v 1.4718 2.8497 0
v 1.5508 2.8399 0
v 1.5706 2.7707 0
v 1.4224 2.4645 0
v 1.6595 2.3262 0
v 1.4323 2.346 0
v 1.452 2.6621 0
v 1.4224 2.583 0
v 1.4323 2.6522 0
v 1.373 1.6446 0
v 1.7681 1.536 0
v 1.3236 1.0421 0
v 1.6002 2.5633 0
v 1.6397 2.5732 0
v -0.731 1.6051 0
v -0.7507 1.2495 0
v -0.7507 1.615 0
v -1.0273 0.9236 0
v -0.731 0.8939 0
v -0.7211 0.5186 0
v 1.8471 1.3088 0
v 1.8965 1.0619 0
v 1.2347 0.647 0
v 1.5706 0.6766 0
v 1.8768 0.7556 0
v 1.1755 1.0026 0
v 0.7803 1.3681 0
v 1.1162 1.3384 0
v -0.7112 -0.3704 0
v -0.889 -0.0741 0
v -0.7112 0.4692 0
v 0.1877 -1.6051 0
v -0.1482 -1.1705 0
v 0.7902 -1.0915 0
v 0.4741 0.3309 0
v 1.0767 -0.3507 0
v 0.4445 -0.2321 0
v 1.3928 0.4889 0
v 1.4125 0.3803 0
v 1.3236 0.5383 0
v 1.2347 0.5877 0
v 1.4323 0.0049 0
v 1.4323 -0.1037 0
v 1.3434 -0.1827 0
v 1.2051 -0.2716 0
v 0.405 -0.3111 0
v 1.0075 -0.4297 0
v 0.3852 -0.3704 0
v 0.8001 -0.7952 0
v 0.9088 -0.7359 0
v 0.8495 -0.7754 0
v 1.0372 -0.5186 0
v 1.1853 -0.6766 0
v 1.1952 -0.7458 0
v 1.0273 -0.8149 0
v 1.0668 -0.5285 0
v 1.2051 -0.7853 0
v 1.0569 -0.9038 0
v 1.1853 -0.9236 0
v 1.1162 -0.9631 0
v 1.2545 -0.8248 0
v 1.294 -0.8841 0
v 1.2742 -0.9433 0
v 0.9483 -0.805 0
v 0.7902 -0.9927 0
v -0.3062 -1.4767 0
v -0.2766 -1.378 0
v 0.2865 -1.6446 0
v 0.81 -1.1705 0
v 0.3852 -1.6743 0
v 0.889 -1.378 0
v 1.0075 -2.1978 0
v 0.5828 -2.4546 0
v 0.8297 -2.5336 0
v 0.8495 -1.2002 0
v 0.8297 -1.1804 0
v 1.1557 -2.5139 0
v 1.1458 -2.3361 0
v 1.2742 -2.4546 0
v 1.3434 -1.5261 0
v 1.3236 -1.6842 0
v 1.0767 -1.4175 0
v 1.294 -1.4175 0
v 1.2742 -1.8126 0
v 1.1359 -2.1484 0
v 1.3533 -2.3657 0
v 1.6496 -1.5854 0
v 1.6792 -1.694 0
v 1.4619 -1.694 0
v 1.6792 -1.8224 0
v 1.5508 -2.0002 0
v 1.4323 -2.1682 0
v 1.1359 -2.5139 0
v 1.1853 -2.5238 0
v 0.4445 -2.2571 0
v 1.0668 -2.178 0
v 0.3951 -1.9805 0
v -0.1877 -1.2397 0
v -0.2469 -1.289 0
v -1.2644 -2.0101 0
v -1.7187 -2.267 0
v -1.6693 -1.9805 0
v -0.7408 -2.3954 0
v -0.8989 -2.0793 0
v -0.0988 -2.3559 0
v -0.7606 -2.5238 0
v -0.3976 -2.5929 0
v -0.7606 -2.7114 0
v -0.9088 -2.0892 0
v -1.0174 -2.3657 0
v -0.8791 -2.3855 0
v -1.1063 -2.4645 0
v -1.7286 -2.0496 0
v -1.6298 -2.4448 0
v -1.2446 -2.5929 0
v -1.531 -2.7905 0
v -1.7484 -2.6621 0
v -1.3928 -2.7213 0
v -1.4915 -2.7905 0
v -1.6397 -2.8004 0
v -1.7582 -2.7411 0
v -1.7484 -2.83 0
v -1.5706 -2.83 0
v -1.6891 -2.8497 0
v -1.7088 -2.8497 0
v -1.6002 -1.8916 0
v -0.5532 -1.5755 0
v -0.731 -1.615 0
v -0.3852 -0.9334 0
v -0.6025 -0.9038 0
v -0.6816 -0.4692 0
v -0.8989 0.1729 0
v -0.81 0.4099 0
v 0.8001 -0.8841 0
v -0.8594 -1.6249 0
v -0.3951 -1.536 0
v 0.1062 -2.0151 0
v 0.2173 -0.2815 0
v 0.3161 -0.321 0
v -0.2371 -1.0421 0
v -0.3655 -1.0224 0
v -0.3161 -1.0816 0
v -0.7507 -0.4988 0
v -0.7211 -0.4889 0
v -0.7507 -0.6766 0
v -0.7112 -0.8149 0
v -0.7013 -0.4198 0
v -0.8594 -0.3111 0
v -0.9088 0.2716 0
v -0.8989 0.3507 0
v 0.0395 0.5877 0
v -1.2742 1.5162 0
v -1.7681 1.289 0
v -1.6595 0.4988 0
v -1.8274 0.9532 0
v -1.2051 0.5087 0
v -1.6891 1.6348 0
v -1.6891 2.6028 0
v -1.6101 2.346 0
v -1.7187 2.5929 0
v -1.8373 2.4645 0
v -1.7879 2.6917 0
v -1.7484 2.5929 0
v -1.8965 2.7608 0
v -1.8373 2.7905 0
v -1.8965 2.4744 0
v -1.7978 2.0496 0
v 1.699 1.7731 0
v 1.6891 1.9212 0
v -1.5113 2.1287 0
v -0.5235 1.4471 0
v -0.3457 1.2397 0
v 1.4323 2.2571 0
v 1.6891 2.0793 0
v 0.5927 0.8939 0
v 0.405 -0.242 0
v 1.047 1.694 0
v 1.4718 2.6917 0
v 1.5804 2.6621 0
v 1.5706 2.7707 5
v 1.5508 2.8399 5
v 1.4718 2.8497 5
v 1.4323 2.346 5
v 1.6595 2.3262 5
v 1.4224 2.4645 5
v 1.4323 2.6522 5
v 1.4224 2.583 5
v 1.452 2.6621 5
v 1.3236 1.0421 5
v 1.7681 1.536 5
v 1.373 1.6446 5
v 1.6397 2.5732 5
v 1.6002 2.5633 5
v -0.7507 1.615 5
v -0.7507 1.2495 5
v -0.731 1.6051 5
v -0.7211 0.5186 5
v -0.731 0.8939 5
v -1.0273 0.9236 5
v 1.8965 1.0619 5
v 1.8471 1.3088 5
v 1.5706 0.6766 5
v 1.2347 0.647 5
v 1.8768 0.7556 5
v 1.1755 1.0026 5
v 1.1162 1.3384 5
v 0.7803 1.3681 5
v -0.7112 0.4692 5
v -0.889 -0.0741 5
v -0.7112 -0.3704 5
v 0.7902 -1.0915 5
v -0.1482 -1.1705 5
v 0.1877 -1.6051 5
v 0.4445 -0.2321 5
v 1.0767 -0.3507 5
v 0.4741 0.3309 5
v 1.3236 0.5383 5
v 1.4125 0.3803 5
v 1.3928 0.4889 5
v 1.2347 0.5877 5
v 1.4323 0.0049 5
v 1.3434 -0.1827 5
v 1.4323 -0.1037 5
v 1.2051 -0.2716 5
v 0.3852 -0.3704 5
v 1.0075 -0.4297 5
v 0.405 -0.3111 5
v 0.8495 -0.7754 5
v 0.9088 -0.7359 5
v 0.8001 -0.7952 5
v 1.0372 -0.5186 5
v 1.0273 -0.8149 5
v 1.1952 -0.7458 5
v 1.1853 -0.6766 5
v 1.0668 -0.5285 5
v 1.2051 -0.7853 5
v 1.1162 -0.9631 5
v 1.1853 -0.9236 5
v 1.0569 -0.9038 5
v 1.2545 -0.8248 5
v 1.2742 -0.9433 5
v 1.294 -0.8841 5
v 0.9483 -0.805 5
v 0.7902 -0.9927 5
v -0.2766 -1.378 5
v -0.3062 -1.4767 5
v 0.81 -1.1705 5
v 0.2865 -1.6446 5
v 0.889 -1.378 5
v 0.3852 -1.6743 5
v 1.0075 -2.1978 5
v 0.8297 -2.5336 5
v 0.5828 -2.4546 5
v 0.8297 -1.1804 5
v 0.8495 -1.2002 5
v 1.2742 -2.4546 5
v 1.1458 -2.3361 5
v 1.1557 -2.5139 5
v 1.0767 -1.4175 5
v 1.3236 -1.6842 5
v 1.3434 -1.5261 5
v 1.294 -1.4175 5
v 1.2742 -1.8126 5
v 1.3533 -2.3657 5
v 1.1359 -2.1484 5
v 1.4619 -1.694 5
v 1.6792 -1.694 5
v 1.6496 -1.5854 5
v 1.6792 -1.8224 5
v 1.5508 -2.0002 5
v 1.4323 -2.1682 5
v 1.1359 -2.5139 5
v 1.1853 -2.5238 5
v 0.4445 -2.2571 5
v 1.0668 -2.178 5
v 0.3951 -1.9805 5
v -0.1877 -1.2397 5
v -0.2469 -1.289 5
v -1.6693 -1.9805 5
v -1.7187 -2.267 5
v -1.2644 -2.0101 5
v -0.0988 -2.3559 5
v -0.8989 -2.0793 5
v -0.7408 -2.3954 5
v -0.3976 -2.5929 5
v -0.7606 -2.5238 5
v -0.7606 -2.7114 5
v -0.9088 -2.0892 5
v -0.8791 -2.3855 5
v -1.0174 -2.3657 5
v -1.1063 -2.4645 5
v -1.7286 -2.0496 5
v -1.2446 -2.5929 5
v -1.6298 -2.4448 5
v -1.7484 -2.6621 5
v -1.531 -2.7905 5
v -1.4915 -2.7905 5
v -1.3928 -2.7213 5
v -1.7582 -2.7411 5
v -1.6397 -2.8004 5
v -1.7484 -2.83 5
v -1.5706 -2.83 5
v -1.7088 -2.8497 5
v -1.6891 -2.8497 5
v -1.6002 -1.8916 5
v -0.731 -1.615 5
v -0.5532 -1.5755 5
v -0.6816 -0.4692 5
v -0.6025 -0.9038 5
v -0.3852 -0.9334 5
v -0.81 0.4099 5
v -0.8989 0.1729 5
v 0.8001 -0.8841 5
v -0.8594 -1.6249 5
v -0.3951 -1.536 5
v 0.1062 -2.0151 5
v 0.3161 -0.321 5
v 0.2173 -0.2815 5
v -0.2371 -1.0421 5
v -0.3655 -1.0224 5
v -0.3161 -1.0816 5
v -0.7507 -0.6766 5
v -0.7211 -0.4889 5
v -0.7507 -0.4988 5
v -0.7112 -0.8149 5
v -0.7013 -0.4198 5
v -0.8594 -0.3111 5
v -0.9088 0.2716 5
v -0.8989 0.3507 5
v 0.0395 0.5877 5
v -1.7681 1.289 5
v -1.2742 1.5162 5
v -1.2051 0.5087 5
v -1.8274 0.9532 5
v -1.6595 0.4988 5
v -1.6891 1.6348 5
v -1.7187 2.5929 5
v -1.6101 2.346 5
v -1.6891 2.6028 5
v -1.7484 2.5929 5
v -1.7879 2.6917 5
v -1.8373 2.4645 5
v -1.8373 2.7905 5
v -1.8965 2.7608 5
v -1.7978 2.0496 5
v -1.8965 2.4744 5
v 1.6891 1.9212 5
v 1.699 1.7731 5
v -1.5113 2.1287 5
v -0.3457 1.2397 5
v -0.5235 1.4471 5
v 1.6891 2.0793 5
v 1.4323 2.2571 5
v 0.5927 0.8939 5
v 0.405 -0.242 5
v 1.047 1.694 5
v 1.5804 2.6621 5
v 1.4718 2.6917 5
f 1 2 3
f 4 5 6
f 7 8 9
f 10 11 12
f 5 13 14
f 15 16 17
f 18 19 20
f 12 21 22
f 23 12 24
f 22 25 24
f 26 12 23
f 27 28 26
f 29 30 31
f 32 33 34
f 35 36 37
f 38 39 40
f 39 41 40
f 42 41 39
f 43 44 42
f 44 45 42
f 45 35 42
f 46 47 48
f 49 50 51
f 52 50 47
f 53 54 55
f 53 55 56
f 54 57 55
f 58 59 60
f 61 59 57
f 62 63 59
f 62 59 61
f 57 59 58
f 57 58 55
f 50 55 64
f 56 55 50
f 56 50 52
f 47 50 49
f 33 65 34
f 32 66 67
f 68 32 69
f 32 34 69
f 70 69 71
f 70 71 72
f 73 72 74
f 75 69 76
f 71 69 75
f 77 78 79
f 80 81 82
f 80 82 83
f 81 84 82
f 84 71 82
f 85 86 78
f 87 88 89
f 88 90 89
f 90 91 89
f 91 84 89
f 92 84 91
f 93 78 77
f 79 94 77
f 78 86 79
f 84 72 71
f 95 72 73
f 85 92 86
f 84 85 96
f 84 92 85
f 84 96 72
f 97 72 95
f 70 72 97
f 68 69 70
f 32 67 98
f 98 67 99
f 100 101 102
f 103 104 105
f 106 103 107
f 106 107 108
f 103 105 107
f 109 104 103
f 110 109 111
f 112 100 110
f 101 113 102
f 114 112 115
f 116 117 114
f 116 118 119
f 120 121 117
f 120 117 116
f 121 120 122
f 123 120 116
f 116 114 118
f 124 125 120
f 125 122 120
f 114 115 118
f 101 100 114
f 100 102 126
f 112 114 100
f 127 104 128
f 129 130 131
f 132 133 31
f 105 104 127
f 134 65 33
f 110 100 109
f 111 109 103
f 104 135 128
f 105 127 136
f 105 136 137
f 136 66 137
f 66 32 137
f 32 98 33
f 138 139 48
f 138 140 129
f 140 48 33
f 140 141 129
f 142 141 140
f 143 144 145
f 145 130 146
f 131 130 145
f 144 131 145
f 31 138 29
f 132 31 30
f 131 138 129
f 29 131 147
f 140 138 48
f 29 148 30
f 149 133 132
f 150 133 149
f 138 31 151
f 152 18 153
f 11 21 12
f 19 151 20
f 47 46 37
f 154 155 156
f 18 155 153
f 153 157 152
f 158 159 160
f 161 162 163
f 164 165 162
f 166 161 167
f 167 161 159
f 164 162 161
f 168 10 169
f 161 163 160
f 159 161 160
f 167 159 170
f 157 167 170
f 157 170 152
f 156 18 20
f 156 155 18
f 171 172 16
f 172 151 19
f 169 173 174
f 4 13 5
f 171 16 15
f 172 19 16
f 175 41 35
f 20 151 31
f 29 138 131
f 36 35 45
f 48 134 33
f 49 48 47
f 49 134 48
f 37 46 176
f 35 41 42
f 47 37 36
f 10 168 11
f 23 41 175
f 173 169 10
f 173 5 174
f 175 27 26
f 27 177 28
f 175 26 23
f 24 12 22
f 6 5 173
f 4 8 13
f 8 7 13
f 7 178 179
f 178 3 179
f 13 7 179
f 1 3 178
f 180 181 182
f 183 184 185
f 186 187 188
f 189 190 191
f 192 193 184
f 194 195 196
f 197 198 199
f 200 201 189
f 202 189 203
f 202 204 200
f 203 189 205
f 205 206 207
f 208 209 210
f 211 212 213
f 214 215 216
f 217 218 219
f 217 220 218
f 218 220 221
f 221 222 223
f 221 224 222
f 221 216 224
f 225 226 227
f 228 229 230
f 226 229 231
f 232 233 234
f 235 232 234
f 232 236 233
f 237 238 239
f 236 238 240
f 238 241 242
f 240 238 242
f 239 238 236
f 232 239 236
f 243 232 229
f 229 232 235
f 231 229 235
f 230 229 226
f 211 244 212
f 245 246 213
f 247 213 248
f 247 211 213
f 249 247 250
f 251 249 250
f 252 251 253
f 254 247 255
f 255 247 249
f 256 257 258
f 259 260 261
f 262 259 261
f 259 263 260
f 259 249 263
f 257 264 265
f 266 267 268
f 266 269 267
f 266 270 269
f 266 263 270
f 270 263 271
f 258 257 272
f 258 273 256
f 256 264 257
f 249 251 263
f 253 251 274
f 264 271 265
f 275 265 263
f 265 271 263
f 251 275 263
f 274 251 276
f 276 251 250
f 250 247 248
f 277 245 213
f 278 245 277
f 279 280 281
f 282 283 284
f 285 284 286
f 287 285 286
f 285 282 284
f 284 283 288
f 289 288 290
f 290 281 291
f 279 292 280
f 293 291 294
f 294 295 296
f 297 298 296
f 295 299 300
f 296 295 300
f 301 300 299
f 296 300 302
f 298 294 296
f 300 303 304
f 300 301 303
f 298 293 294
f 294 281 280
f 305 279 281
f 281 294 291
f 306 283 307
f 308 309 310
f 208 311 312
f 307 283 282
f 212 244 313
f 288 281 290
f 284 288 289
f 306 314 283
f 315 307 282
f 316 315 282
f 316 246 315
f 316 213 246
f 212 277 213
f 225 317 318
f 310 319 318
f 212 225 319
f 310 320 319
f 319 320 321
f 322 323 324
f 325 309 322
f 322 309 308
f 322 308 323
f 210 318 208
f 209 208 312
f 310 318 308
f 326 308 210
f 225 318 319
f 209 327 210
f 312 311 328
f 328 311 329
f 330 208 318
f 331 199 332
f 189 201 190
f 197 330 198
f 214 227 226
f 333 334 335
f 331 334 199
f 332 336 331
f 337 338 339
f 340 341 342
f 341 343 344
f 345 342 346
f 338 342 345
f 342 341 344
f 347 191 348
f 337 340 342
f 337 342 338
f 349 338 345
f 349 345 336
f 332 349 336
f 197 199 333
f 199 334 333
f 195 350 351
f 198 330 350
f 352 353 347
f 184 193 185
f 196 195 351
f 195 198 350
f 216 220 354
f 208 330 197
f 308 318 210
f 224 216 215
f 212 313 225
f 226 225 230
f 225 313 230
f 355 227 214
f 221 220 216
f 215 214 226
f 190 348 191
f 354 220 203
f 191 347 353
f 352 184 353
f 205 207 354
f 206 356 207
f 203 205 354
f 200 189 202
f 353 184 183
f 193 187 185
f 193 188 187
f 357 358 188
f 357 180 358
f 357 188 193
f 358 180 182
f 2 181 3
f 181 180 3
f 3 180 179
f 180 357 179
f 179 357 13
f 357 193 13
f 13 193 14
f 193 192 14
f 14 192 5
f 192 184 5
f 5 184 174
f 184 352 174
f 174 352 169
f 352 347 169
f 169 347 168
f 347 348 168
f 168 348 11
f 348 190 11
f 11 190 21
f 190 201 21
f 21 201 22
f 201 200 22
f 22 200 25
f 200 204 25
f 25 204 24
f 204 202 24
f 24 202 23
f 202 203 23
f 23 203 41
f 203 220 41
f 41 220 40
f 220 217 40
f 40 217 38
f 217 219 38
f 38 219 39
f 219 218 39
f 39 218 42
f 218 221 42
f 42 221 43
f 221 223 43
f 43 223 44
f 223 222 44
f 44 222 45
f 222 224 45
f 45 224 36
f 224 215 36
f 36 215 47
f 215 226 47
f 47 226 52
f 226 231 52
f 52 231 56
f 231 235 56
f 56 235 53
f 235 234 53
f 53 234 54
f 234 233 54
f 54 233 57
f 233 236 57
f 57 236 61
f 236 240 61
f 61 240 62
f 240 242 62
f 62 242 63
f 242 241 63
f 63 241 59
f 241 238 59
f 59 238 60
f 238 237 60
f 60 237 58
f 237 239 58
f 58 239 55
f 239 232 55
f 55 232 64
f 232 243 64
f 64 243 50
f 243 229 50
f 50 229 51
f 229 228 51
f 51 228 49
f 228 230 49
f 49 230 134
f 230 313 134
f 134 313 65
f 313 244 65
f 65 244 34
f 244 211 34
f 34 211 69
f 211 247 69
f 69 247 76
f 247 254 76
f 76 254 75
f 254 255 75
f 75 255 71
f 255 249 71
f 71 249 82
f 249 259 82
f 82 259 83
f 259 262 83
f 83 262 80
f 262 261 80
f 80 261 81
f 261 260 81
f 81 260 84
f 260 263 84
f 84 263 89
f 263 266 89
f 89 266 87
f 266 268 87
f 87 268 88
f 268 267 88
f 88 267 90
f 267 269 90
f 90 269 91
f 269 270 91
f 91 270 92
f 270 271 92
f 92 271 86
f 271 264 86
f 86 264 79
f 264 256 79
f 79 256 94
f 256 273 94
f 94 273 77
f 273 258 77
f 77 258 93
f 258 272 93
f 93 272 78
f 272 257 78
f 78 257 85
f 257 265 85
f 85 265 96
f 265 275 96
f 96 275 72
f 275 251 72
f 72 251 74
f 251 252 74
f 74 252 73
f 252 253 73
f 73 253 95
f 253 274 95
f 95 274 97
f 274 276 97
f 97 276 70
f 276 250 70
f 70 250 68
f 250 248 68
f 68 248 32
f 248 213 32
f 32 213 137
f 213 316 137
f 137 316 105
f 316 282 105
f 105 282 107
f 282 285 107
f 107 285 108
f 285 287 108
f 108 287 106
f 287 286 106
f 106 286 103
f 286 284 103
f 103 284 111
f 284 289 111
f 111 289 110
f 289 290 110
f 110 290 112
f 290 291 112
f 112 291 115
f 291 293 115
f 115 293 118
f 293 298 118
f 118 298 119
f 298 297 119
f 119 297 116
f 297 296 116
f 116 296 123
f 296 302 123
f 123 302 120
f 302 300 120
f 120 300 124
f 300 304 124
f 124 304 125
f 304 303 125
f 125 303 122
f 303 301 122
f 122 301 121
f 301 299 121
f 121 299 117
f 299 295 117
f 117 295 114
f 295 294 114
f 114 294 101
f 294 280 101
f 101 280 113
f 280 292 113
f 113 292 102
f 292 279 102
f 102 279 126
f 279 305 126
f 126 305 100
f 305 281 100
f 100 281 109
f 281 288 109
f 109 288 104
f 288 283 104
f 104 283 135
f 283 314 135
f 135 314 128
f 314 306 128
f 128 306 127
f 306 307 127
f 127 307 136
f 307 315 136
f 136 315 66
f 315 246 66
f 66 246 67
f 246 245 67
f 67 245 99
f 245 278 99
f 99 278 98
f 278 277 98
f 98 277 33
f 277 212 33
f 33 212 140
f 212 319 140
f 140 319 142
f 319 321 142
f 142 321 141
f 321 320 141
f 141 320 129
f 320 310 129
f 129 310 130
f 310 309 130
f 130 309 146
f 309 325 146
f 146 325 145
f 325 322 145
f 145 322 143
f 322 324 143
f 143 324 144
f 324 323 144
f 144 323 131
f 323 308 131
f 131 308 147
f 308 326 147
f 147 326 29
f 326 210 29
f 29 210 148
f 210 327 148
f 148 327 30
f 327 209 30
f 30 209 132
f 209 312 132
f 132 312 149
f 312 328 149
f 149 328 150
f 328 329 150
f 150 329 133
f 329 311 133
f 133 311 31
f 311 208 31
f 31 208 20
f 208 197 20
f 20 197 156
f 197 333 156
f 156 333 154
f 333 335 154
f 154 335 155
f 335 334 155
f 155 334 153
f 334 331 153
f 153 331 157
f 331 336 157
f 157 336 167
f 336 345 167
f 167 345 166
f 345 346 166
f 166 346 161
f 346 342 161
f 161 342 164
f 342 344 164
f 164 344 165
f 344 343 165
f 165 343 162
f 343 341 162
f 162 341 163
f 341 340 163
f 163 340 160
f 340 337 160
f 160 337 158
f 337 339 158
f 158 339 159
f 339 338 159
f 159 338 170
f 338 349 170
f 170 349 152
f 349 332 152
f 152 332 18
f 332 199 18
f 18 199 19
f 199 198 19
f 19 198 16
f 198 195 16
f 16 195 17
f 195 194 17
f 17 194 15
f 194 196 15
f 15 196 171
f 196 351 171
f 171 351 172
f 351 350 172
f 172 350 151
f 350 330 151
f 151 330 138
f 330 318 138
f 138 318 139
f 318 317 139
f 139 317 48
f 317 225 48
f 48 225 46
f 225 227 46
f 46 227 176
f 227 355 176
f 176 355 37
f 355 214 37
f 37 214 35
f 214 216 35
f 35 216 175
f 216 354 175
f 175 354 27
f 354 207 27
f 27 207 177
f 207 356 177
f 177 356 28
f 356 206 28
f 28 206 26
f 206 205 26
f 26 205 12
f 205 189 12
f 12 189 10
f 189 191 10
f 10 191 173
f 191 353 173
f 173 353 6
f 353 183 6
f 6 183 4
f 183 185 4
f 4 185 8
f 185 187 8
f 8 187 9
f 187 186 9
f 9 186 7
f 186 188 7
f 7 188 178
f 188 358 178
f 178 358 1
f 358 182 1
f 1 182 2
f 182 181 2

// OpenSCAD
// Module names are of the form poly_<inkscape-path-id>().  As a result,
// you can associate a polygon in this OpenSCAD program with the corresponding
// SVG element in the Inkscape document by looking for the XML element with
// the attribute id="inkscape-path-id".

// fudge value is used to ensure that subtracted solids are a tad taller
// in the z dimension than the polygon being subtracted from.  This helps
// keep the resulting .stl file manifold.
fudge = 0.1;

module poly_path4369(h)
{
  scale([25.4/90, -25.4/90, 1]) union()
  {
    linear_extrude(height=h)
      polygon([[3.675000,1.837500],[3.780000,1.872500],[4.200000,2.397500],[4.235000,2.642500],[4.270000,2.782500],[4.445000,2.922500],[4.585000,3.132500],[4.515000,3.342500],[4.200000,3.272500],[3.955000,3.412500],[3.745000,3.202500],[3.640000,2.887500],[3.360000,2.852500],[3.220000,2.607500],[3.010000,2.747500],[2.835000,2.817500],[2.835000,3.132500],[2.800000,3.517500],[2.800000,3.867500],[2.870000,4.147500],[2.940000,4.182500],[3.010000,4.252500],[3.150000,4.882500],[3.815000,5.022500],[4.585000,5.022500],[4.760000,5.407500],[4.690000,5.967500],[4.515000,6.422500],[5.180000,6.002500],[5.845000,5.617500],[5.950000,6.002500],[5.950000,6.457500],[5.495000,7.087500],[5.075000,7.682500],[4.935000,8.032500],[4.795000,8.382500],[4.515000,8.697500],[4.200000,8.942500],[4.095000,8.907500],[4.025000,8.907500],[4.060000,8.277500],[4.025000,7.612500],[3.780000,7.717500],[3.570000,7.787500],[3.255000,8.382500],[2.940000,8.977500],[2.065000,8.697500],[1.575000,7.997500],[1.400000,7.017500],[1.365000,5.932500],[1.015000,5.827500],[0.665000,5.687500],[0.376250,7.140000],[-0.350000,8.347500],[-1.408750,9.187500],[-2.695000,9.607500],[-2.695000,9.397500],[-2.695000,8.942500],[-2.625000,8.487500],[-3.115000,8.452500],[-3.605000,8.382500],[-3.920000,8.732500],[-4.410000,9.187500],[-4.935000,9.642500],[-5.285000,9.887500],[-5.425000,9.887500],[-5.565000,10.027500],[-5.810000,9.922500],[-5.985000,10.097500],[-6.055000,10.097500],[-6.195000,10.027500],[-6.230000,9.712500],[-6.195000,9.432500],[-5.985000,9.047500],[-5.775000,8.662500],[-6.090000,8.032500],[-6.125000,7.262500],[-5.915000,7.017500],[-5.670000,6.702500],[-4.480000,7.122500],[-3.220000,7.402500],[-3.185000,7.367500],[-3.115000,6.562500],[-3.045000,5.757500],[-2.590000,5.722500],[-1.960000,5.582500],[-1.400000,5.442500],[-1.085000,5.232500],[-0.980000,4.882500],[-0.875000,4.567500],[-0.665000,4.392500],[-0.525000,4.147500],[-0.840000,3.692500],[-1.120000,3.832500],[-1.295000,3.622500],[-1.365000,3.307500],[-2.135000,3.202500],[-2.520000,2.887500],[-2.660000,2.397500],[-2.660000,1.767500],[-2.555000,1.732500],[-2.415000,1.662500],[-2.485000,1.487500],[-2.520000,1.312500],[-3.045000,1.102500],[-3.150000,0.262500],[-3.185000,-0.612500],[-3.220000,-0.962500],[-3.185000,-1.242500],[-2.870000,-1.452500],[-2.520000,-1.662500],[-2.555000,-1.837500],[-4.270000,-1.802500],[-5.880000,-1.767500],[-6.475000,-3.377500],[-6.265000,-4.567500],[-5.985000,-5.792500],[-6.370000,-7.262500],[-6.720000,-8.767500],[-6.510000,-8.732500],[-6.720000,-9.782500],[-6.510000,-9.887500],[-6.335000,-9.537500],[-6.195000,-9.187500],[-6.090000,-9.187500],[-5.985000,-9.222500],[-5.705000,-8.312500],[-5.355000,-7.542500],[-4.515000,-5.372500],[-3.640000,-3.272500],[-2.590000,-3.167500],[-2.660000,-4.427500],[-2.660000,-5.722500],[-2.590000,-5.687500],[-1.855000,-5.127500],[-1.225000,-4.392500],[0.140000,-2.082500],[0.770000,0.997500],[1.120000,1.137500],[1.365000,1.312500],[1.435000,1.102500],[1.435000,0.857500],[1.575000,0.822500],[1.680000,-1.172500],[2.100000,-3.167500],[2.765000,-4.847500],[3.710000,-6.002500],[3.955000,-4.742500],[4.165000,-3.552500],[4.690000,-3.692500],[4.865000,-5.827500],[5.075000,-7.997500],[5.075000,-8.312500],[5.040000,-8.732500],[5.040000,-9.152500],[5.075000,-9.397500],[5.145000,-9.432500],[5.215000,-9.537500],[5.215000,-9.852500],[5.215000,-10.097500],[5.495000,-10.062500],[5.565000,-9.817500],[5.600000,-9.432500],[5.670000,-9.082500],[5.810000,-9.117500],[5.880000,-8.242500],[5.985000,-7.367500],[5.985000,-6.807500],[6.020000,-6.282500],[6.265000,-5.442500],[6.545000,-4.637500],[6.720000,-3.762500],[6.650000,-2.677500],[5.565000,-2.397500],[4.375000,-2.292500],[4.375000,-2.082500],[4.690000,-1.907500],[4.935000,-1.732500],[5.005000,-1.347500],[5.040000,-0.682500],[5.075000,-0.017500],[5.075000,0.367500],[4.760000,0.647500],[4.270000,0.962500],[3.815000,1.242500],[3.570000,1.522500],[3.675000,1.837500]]);
  }
}

poly_path4369(5);
